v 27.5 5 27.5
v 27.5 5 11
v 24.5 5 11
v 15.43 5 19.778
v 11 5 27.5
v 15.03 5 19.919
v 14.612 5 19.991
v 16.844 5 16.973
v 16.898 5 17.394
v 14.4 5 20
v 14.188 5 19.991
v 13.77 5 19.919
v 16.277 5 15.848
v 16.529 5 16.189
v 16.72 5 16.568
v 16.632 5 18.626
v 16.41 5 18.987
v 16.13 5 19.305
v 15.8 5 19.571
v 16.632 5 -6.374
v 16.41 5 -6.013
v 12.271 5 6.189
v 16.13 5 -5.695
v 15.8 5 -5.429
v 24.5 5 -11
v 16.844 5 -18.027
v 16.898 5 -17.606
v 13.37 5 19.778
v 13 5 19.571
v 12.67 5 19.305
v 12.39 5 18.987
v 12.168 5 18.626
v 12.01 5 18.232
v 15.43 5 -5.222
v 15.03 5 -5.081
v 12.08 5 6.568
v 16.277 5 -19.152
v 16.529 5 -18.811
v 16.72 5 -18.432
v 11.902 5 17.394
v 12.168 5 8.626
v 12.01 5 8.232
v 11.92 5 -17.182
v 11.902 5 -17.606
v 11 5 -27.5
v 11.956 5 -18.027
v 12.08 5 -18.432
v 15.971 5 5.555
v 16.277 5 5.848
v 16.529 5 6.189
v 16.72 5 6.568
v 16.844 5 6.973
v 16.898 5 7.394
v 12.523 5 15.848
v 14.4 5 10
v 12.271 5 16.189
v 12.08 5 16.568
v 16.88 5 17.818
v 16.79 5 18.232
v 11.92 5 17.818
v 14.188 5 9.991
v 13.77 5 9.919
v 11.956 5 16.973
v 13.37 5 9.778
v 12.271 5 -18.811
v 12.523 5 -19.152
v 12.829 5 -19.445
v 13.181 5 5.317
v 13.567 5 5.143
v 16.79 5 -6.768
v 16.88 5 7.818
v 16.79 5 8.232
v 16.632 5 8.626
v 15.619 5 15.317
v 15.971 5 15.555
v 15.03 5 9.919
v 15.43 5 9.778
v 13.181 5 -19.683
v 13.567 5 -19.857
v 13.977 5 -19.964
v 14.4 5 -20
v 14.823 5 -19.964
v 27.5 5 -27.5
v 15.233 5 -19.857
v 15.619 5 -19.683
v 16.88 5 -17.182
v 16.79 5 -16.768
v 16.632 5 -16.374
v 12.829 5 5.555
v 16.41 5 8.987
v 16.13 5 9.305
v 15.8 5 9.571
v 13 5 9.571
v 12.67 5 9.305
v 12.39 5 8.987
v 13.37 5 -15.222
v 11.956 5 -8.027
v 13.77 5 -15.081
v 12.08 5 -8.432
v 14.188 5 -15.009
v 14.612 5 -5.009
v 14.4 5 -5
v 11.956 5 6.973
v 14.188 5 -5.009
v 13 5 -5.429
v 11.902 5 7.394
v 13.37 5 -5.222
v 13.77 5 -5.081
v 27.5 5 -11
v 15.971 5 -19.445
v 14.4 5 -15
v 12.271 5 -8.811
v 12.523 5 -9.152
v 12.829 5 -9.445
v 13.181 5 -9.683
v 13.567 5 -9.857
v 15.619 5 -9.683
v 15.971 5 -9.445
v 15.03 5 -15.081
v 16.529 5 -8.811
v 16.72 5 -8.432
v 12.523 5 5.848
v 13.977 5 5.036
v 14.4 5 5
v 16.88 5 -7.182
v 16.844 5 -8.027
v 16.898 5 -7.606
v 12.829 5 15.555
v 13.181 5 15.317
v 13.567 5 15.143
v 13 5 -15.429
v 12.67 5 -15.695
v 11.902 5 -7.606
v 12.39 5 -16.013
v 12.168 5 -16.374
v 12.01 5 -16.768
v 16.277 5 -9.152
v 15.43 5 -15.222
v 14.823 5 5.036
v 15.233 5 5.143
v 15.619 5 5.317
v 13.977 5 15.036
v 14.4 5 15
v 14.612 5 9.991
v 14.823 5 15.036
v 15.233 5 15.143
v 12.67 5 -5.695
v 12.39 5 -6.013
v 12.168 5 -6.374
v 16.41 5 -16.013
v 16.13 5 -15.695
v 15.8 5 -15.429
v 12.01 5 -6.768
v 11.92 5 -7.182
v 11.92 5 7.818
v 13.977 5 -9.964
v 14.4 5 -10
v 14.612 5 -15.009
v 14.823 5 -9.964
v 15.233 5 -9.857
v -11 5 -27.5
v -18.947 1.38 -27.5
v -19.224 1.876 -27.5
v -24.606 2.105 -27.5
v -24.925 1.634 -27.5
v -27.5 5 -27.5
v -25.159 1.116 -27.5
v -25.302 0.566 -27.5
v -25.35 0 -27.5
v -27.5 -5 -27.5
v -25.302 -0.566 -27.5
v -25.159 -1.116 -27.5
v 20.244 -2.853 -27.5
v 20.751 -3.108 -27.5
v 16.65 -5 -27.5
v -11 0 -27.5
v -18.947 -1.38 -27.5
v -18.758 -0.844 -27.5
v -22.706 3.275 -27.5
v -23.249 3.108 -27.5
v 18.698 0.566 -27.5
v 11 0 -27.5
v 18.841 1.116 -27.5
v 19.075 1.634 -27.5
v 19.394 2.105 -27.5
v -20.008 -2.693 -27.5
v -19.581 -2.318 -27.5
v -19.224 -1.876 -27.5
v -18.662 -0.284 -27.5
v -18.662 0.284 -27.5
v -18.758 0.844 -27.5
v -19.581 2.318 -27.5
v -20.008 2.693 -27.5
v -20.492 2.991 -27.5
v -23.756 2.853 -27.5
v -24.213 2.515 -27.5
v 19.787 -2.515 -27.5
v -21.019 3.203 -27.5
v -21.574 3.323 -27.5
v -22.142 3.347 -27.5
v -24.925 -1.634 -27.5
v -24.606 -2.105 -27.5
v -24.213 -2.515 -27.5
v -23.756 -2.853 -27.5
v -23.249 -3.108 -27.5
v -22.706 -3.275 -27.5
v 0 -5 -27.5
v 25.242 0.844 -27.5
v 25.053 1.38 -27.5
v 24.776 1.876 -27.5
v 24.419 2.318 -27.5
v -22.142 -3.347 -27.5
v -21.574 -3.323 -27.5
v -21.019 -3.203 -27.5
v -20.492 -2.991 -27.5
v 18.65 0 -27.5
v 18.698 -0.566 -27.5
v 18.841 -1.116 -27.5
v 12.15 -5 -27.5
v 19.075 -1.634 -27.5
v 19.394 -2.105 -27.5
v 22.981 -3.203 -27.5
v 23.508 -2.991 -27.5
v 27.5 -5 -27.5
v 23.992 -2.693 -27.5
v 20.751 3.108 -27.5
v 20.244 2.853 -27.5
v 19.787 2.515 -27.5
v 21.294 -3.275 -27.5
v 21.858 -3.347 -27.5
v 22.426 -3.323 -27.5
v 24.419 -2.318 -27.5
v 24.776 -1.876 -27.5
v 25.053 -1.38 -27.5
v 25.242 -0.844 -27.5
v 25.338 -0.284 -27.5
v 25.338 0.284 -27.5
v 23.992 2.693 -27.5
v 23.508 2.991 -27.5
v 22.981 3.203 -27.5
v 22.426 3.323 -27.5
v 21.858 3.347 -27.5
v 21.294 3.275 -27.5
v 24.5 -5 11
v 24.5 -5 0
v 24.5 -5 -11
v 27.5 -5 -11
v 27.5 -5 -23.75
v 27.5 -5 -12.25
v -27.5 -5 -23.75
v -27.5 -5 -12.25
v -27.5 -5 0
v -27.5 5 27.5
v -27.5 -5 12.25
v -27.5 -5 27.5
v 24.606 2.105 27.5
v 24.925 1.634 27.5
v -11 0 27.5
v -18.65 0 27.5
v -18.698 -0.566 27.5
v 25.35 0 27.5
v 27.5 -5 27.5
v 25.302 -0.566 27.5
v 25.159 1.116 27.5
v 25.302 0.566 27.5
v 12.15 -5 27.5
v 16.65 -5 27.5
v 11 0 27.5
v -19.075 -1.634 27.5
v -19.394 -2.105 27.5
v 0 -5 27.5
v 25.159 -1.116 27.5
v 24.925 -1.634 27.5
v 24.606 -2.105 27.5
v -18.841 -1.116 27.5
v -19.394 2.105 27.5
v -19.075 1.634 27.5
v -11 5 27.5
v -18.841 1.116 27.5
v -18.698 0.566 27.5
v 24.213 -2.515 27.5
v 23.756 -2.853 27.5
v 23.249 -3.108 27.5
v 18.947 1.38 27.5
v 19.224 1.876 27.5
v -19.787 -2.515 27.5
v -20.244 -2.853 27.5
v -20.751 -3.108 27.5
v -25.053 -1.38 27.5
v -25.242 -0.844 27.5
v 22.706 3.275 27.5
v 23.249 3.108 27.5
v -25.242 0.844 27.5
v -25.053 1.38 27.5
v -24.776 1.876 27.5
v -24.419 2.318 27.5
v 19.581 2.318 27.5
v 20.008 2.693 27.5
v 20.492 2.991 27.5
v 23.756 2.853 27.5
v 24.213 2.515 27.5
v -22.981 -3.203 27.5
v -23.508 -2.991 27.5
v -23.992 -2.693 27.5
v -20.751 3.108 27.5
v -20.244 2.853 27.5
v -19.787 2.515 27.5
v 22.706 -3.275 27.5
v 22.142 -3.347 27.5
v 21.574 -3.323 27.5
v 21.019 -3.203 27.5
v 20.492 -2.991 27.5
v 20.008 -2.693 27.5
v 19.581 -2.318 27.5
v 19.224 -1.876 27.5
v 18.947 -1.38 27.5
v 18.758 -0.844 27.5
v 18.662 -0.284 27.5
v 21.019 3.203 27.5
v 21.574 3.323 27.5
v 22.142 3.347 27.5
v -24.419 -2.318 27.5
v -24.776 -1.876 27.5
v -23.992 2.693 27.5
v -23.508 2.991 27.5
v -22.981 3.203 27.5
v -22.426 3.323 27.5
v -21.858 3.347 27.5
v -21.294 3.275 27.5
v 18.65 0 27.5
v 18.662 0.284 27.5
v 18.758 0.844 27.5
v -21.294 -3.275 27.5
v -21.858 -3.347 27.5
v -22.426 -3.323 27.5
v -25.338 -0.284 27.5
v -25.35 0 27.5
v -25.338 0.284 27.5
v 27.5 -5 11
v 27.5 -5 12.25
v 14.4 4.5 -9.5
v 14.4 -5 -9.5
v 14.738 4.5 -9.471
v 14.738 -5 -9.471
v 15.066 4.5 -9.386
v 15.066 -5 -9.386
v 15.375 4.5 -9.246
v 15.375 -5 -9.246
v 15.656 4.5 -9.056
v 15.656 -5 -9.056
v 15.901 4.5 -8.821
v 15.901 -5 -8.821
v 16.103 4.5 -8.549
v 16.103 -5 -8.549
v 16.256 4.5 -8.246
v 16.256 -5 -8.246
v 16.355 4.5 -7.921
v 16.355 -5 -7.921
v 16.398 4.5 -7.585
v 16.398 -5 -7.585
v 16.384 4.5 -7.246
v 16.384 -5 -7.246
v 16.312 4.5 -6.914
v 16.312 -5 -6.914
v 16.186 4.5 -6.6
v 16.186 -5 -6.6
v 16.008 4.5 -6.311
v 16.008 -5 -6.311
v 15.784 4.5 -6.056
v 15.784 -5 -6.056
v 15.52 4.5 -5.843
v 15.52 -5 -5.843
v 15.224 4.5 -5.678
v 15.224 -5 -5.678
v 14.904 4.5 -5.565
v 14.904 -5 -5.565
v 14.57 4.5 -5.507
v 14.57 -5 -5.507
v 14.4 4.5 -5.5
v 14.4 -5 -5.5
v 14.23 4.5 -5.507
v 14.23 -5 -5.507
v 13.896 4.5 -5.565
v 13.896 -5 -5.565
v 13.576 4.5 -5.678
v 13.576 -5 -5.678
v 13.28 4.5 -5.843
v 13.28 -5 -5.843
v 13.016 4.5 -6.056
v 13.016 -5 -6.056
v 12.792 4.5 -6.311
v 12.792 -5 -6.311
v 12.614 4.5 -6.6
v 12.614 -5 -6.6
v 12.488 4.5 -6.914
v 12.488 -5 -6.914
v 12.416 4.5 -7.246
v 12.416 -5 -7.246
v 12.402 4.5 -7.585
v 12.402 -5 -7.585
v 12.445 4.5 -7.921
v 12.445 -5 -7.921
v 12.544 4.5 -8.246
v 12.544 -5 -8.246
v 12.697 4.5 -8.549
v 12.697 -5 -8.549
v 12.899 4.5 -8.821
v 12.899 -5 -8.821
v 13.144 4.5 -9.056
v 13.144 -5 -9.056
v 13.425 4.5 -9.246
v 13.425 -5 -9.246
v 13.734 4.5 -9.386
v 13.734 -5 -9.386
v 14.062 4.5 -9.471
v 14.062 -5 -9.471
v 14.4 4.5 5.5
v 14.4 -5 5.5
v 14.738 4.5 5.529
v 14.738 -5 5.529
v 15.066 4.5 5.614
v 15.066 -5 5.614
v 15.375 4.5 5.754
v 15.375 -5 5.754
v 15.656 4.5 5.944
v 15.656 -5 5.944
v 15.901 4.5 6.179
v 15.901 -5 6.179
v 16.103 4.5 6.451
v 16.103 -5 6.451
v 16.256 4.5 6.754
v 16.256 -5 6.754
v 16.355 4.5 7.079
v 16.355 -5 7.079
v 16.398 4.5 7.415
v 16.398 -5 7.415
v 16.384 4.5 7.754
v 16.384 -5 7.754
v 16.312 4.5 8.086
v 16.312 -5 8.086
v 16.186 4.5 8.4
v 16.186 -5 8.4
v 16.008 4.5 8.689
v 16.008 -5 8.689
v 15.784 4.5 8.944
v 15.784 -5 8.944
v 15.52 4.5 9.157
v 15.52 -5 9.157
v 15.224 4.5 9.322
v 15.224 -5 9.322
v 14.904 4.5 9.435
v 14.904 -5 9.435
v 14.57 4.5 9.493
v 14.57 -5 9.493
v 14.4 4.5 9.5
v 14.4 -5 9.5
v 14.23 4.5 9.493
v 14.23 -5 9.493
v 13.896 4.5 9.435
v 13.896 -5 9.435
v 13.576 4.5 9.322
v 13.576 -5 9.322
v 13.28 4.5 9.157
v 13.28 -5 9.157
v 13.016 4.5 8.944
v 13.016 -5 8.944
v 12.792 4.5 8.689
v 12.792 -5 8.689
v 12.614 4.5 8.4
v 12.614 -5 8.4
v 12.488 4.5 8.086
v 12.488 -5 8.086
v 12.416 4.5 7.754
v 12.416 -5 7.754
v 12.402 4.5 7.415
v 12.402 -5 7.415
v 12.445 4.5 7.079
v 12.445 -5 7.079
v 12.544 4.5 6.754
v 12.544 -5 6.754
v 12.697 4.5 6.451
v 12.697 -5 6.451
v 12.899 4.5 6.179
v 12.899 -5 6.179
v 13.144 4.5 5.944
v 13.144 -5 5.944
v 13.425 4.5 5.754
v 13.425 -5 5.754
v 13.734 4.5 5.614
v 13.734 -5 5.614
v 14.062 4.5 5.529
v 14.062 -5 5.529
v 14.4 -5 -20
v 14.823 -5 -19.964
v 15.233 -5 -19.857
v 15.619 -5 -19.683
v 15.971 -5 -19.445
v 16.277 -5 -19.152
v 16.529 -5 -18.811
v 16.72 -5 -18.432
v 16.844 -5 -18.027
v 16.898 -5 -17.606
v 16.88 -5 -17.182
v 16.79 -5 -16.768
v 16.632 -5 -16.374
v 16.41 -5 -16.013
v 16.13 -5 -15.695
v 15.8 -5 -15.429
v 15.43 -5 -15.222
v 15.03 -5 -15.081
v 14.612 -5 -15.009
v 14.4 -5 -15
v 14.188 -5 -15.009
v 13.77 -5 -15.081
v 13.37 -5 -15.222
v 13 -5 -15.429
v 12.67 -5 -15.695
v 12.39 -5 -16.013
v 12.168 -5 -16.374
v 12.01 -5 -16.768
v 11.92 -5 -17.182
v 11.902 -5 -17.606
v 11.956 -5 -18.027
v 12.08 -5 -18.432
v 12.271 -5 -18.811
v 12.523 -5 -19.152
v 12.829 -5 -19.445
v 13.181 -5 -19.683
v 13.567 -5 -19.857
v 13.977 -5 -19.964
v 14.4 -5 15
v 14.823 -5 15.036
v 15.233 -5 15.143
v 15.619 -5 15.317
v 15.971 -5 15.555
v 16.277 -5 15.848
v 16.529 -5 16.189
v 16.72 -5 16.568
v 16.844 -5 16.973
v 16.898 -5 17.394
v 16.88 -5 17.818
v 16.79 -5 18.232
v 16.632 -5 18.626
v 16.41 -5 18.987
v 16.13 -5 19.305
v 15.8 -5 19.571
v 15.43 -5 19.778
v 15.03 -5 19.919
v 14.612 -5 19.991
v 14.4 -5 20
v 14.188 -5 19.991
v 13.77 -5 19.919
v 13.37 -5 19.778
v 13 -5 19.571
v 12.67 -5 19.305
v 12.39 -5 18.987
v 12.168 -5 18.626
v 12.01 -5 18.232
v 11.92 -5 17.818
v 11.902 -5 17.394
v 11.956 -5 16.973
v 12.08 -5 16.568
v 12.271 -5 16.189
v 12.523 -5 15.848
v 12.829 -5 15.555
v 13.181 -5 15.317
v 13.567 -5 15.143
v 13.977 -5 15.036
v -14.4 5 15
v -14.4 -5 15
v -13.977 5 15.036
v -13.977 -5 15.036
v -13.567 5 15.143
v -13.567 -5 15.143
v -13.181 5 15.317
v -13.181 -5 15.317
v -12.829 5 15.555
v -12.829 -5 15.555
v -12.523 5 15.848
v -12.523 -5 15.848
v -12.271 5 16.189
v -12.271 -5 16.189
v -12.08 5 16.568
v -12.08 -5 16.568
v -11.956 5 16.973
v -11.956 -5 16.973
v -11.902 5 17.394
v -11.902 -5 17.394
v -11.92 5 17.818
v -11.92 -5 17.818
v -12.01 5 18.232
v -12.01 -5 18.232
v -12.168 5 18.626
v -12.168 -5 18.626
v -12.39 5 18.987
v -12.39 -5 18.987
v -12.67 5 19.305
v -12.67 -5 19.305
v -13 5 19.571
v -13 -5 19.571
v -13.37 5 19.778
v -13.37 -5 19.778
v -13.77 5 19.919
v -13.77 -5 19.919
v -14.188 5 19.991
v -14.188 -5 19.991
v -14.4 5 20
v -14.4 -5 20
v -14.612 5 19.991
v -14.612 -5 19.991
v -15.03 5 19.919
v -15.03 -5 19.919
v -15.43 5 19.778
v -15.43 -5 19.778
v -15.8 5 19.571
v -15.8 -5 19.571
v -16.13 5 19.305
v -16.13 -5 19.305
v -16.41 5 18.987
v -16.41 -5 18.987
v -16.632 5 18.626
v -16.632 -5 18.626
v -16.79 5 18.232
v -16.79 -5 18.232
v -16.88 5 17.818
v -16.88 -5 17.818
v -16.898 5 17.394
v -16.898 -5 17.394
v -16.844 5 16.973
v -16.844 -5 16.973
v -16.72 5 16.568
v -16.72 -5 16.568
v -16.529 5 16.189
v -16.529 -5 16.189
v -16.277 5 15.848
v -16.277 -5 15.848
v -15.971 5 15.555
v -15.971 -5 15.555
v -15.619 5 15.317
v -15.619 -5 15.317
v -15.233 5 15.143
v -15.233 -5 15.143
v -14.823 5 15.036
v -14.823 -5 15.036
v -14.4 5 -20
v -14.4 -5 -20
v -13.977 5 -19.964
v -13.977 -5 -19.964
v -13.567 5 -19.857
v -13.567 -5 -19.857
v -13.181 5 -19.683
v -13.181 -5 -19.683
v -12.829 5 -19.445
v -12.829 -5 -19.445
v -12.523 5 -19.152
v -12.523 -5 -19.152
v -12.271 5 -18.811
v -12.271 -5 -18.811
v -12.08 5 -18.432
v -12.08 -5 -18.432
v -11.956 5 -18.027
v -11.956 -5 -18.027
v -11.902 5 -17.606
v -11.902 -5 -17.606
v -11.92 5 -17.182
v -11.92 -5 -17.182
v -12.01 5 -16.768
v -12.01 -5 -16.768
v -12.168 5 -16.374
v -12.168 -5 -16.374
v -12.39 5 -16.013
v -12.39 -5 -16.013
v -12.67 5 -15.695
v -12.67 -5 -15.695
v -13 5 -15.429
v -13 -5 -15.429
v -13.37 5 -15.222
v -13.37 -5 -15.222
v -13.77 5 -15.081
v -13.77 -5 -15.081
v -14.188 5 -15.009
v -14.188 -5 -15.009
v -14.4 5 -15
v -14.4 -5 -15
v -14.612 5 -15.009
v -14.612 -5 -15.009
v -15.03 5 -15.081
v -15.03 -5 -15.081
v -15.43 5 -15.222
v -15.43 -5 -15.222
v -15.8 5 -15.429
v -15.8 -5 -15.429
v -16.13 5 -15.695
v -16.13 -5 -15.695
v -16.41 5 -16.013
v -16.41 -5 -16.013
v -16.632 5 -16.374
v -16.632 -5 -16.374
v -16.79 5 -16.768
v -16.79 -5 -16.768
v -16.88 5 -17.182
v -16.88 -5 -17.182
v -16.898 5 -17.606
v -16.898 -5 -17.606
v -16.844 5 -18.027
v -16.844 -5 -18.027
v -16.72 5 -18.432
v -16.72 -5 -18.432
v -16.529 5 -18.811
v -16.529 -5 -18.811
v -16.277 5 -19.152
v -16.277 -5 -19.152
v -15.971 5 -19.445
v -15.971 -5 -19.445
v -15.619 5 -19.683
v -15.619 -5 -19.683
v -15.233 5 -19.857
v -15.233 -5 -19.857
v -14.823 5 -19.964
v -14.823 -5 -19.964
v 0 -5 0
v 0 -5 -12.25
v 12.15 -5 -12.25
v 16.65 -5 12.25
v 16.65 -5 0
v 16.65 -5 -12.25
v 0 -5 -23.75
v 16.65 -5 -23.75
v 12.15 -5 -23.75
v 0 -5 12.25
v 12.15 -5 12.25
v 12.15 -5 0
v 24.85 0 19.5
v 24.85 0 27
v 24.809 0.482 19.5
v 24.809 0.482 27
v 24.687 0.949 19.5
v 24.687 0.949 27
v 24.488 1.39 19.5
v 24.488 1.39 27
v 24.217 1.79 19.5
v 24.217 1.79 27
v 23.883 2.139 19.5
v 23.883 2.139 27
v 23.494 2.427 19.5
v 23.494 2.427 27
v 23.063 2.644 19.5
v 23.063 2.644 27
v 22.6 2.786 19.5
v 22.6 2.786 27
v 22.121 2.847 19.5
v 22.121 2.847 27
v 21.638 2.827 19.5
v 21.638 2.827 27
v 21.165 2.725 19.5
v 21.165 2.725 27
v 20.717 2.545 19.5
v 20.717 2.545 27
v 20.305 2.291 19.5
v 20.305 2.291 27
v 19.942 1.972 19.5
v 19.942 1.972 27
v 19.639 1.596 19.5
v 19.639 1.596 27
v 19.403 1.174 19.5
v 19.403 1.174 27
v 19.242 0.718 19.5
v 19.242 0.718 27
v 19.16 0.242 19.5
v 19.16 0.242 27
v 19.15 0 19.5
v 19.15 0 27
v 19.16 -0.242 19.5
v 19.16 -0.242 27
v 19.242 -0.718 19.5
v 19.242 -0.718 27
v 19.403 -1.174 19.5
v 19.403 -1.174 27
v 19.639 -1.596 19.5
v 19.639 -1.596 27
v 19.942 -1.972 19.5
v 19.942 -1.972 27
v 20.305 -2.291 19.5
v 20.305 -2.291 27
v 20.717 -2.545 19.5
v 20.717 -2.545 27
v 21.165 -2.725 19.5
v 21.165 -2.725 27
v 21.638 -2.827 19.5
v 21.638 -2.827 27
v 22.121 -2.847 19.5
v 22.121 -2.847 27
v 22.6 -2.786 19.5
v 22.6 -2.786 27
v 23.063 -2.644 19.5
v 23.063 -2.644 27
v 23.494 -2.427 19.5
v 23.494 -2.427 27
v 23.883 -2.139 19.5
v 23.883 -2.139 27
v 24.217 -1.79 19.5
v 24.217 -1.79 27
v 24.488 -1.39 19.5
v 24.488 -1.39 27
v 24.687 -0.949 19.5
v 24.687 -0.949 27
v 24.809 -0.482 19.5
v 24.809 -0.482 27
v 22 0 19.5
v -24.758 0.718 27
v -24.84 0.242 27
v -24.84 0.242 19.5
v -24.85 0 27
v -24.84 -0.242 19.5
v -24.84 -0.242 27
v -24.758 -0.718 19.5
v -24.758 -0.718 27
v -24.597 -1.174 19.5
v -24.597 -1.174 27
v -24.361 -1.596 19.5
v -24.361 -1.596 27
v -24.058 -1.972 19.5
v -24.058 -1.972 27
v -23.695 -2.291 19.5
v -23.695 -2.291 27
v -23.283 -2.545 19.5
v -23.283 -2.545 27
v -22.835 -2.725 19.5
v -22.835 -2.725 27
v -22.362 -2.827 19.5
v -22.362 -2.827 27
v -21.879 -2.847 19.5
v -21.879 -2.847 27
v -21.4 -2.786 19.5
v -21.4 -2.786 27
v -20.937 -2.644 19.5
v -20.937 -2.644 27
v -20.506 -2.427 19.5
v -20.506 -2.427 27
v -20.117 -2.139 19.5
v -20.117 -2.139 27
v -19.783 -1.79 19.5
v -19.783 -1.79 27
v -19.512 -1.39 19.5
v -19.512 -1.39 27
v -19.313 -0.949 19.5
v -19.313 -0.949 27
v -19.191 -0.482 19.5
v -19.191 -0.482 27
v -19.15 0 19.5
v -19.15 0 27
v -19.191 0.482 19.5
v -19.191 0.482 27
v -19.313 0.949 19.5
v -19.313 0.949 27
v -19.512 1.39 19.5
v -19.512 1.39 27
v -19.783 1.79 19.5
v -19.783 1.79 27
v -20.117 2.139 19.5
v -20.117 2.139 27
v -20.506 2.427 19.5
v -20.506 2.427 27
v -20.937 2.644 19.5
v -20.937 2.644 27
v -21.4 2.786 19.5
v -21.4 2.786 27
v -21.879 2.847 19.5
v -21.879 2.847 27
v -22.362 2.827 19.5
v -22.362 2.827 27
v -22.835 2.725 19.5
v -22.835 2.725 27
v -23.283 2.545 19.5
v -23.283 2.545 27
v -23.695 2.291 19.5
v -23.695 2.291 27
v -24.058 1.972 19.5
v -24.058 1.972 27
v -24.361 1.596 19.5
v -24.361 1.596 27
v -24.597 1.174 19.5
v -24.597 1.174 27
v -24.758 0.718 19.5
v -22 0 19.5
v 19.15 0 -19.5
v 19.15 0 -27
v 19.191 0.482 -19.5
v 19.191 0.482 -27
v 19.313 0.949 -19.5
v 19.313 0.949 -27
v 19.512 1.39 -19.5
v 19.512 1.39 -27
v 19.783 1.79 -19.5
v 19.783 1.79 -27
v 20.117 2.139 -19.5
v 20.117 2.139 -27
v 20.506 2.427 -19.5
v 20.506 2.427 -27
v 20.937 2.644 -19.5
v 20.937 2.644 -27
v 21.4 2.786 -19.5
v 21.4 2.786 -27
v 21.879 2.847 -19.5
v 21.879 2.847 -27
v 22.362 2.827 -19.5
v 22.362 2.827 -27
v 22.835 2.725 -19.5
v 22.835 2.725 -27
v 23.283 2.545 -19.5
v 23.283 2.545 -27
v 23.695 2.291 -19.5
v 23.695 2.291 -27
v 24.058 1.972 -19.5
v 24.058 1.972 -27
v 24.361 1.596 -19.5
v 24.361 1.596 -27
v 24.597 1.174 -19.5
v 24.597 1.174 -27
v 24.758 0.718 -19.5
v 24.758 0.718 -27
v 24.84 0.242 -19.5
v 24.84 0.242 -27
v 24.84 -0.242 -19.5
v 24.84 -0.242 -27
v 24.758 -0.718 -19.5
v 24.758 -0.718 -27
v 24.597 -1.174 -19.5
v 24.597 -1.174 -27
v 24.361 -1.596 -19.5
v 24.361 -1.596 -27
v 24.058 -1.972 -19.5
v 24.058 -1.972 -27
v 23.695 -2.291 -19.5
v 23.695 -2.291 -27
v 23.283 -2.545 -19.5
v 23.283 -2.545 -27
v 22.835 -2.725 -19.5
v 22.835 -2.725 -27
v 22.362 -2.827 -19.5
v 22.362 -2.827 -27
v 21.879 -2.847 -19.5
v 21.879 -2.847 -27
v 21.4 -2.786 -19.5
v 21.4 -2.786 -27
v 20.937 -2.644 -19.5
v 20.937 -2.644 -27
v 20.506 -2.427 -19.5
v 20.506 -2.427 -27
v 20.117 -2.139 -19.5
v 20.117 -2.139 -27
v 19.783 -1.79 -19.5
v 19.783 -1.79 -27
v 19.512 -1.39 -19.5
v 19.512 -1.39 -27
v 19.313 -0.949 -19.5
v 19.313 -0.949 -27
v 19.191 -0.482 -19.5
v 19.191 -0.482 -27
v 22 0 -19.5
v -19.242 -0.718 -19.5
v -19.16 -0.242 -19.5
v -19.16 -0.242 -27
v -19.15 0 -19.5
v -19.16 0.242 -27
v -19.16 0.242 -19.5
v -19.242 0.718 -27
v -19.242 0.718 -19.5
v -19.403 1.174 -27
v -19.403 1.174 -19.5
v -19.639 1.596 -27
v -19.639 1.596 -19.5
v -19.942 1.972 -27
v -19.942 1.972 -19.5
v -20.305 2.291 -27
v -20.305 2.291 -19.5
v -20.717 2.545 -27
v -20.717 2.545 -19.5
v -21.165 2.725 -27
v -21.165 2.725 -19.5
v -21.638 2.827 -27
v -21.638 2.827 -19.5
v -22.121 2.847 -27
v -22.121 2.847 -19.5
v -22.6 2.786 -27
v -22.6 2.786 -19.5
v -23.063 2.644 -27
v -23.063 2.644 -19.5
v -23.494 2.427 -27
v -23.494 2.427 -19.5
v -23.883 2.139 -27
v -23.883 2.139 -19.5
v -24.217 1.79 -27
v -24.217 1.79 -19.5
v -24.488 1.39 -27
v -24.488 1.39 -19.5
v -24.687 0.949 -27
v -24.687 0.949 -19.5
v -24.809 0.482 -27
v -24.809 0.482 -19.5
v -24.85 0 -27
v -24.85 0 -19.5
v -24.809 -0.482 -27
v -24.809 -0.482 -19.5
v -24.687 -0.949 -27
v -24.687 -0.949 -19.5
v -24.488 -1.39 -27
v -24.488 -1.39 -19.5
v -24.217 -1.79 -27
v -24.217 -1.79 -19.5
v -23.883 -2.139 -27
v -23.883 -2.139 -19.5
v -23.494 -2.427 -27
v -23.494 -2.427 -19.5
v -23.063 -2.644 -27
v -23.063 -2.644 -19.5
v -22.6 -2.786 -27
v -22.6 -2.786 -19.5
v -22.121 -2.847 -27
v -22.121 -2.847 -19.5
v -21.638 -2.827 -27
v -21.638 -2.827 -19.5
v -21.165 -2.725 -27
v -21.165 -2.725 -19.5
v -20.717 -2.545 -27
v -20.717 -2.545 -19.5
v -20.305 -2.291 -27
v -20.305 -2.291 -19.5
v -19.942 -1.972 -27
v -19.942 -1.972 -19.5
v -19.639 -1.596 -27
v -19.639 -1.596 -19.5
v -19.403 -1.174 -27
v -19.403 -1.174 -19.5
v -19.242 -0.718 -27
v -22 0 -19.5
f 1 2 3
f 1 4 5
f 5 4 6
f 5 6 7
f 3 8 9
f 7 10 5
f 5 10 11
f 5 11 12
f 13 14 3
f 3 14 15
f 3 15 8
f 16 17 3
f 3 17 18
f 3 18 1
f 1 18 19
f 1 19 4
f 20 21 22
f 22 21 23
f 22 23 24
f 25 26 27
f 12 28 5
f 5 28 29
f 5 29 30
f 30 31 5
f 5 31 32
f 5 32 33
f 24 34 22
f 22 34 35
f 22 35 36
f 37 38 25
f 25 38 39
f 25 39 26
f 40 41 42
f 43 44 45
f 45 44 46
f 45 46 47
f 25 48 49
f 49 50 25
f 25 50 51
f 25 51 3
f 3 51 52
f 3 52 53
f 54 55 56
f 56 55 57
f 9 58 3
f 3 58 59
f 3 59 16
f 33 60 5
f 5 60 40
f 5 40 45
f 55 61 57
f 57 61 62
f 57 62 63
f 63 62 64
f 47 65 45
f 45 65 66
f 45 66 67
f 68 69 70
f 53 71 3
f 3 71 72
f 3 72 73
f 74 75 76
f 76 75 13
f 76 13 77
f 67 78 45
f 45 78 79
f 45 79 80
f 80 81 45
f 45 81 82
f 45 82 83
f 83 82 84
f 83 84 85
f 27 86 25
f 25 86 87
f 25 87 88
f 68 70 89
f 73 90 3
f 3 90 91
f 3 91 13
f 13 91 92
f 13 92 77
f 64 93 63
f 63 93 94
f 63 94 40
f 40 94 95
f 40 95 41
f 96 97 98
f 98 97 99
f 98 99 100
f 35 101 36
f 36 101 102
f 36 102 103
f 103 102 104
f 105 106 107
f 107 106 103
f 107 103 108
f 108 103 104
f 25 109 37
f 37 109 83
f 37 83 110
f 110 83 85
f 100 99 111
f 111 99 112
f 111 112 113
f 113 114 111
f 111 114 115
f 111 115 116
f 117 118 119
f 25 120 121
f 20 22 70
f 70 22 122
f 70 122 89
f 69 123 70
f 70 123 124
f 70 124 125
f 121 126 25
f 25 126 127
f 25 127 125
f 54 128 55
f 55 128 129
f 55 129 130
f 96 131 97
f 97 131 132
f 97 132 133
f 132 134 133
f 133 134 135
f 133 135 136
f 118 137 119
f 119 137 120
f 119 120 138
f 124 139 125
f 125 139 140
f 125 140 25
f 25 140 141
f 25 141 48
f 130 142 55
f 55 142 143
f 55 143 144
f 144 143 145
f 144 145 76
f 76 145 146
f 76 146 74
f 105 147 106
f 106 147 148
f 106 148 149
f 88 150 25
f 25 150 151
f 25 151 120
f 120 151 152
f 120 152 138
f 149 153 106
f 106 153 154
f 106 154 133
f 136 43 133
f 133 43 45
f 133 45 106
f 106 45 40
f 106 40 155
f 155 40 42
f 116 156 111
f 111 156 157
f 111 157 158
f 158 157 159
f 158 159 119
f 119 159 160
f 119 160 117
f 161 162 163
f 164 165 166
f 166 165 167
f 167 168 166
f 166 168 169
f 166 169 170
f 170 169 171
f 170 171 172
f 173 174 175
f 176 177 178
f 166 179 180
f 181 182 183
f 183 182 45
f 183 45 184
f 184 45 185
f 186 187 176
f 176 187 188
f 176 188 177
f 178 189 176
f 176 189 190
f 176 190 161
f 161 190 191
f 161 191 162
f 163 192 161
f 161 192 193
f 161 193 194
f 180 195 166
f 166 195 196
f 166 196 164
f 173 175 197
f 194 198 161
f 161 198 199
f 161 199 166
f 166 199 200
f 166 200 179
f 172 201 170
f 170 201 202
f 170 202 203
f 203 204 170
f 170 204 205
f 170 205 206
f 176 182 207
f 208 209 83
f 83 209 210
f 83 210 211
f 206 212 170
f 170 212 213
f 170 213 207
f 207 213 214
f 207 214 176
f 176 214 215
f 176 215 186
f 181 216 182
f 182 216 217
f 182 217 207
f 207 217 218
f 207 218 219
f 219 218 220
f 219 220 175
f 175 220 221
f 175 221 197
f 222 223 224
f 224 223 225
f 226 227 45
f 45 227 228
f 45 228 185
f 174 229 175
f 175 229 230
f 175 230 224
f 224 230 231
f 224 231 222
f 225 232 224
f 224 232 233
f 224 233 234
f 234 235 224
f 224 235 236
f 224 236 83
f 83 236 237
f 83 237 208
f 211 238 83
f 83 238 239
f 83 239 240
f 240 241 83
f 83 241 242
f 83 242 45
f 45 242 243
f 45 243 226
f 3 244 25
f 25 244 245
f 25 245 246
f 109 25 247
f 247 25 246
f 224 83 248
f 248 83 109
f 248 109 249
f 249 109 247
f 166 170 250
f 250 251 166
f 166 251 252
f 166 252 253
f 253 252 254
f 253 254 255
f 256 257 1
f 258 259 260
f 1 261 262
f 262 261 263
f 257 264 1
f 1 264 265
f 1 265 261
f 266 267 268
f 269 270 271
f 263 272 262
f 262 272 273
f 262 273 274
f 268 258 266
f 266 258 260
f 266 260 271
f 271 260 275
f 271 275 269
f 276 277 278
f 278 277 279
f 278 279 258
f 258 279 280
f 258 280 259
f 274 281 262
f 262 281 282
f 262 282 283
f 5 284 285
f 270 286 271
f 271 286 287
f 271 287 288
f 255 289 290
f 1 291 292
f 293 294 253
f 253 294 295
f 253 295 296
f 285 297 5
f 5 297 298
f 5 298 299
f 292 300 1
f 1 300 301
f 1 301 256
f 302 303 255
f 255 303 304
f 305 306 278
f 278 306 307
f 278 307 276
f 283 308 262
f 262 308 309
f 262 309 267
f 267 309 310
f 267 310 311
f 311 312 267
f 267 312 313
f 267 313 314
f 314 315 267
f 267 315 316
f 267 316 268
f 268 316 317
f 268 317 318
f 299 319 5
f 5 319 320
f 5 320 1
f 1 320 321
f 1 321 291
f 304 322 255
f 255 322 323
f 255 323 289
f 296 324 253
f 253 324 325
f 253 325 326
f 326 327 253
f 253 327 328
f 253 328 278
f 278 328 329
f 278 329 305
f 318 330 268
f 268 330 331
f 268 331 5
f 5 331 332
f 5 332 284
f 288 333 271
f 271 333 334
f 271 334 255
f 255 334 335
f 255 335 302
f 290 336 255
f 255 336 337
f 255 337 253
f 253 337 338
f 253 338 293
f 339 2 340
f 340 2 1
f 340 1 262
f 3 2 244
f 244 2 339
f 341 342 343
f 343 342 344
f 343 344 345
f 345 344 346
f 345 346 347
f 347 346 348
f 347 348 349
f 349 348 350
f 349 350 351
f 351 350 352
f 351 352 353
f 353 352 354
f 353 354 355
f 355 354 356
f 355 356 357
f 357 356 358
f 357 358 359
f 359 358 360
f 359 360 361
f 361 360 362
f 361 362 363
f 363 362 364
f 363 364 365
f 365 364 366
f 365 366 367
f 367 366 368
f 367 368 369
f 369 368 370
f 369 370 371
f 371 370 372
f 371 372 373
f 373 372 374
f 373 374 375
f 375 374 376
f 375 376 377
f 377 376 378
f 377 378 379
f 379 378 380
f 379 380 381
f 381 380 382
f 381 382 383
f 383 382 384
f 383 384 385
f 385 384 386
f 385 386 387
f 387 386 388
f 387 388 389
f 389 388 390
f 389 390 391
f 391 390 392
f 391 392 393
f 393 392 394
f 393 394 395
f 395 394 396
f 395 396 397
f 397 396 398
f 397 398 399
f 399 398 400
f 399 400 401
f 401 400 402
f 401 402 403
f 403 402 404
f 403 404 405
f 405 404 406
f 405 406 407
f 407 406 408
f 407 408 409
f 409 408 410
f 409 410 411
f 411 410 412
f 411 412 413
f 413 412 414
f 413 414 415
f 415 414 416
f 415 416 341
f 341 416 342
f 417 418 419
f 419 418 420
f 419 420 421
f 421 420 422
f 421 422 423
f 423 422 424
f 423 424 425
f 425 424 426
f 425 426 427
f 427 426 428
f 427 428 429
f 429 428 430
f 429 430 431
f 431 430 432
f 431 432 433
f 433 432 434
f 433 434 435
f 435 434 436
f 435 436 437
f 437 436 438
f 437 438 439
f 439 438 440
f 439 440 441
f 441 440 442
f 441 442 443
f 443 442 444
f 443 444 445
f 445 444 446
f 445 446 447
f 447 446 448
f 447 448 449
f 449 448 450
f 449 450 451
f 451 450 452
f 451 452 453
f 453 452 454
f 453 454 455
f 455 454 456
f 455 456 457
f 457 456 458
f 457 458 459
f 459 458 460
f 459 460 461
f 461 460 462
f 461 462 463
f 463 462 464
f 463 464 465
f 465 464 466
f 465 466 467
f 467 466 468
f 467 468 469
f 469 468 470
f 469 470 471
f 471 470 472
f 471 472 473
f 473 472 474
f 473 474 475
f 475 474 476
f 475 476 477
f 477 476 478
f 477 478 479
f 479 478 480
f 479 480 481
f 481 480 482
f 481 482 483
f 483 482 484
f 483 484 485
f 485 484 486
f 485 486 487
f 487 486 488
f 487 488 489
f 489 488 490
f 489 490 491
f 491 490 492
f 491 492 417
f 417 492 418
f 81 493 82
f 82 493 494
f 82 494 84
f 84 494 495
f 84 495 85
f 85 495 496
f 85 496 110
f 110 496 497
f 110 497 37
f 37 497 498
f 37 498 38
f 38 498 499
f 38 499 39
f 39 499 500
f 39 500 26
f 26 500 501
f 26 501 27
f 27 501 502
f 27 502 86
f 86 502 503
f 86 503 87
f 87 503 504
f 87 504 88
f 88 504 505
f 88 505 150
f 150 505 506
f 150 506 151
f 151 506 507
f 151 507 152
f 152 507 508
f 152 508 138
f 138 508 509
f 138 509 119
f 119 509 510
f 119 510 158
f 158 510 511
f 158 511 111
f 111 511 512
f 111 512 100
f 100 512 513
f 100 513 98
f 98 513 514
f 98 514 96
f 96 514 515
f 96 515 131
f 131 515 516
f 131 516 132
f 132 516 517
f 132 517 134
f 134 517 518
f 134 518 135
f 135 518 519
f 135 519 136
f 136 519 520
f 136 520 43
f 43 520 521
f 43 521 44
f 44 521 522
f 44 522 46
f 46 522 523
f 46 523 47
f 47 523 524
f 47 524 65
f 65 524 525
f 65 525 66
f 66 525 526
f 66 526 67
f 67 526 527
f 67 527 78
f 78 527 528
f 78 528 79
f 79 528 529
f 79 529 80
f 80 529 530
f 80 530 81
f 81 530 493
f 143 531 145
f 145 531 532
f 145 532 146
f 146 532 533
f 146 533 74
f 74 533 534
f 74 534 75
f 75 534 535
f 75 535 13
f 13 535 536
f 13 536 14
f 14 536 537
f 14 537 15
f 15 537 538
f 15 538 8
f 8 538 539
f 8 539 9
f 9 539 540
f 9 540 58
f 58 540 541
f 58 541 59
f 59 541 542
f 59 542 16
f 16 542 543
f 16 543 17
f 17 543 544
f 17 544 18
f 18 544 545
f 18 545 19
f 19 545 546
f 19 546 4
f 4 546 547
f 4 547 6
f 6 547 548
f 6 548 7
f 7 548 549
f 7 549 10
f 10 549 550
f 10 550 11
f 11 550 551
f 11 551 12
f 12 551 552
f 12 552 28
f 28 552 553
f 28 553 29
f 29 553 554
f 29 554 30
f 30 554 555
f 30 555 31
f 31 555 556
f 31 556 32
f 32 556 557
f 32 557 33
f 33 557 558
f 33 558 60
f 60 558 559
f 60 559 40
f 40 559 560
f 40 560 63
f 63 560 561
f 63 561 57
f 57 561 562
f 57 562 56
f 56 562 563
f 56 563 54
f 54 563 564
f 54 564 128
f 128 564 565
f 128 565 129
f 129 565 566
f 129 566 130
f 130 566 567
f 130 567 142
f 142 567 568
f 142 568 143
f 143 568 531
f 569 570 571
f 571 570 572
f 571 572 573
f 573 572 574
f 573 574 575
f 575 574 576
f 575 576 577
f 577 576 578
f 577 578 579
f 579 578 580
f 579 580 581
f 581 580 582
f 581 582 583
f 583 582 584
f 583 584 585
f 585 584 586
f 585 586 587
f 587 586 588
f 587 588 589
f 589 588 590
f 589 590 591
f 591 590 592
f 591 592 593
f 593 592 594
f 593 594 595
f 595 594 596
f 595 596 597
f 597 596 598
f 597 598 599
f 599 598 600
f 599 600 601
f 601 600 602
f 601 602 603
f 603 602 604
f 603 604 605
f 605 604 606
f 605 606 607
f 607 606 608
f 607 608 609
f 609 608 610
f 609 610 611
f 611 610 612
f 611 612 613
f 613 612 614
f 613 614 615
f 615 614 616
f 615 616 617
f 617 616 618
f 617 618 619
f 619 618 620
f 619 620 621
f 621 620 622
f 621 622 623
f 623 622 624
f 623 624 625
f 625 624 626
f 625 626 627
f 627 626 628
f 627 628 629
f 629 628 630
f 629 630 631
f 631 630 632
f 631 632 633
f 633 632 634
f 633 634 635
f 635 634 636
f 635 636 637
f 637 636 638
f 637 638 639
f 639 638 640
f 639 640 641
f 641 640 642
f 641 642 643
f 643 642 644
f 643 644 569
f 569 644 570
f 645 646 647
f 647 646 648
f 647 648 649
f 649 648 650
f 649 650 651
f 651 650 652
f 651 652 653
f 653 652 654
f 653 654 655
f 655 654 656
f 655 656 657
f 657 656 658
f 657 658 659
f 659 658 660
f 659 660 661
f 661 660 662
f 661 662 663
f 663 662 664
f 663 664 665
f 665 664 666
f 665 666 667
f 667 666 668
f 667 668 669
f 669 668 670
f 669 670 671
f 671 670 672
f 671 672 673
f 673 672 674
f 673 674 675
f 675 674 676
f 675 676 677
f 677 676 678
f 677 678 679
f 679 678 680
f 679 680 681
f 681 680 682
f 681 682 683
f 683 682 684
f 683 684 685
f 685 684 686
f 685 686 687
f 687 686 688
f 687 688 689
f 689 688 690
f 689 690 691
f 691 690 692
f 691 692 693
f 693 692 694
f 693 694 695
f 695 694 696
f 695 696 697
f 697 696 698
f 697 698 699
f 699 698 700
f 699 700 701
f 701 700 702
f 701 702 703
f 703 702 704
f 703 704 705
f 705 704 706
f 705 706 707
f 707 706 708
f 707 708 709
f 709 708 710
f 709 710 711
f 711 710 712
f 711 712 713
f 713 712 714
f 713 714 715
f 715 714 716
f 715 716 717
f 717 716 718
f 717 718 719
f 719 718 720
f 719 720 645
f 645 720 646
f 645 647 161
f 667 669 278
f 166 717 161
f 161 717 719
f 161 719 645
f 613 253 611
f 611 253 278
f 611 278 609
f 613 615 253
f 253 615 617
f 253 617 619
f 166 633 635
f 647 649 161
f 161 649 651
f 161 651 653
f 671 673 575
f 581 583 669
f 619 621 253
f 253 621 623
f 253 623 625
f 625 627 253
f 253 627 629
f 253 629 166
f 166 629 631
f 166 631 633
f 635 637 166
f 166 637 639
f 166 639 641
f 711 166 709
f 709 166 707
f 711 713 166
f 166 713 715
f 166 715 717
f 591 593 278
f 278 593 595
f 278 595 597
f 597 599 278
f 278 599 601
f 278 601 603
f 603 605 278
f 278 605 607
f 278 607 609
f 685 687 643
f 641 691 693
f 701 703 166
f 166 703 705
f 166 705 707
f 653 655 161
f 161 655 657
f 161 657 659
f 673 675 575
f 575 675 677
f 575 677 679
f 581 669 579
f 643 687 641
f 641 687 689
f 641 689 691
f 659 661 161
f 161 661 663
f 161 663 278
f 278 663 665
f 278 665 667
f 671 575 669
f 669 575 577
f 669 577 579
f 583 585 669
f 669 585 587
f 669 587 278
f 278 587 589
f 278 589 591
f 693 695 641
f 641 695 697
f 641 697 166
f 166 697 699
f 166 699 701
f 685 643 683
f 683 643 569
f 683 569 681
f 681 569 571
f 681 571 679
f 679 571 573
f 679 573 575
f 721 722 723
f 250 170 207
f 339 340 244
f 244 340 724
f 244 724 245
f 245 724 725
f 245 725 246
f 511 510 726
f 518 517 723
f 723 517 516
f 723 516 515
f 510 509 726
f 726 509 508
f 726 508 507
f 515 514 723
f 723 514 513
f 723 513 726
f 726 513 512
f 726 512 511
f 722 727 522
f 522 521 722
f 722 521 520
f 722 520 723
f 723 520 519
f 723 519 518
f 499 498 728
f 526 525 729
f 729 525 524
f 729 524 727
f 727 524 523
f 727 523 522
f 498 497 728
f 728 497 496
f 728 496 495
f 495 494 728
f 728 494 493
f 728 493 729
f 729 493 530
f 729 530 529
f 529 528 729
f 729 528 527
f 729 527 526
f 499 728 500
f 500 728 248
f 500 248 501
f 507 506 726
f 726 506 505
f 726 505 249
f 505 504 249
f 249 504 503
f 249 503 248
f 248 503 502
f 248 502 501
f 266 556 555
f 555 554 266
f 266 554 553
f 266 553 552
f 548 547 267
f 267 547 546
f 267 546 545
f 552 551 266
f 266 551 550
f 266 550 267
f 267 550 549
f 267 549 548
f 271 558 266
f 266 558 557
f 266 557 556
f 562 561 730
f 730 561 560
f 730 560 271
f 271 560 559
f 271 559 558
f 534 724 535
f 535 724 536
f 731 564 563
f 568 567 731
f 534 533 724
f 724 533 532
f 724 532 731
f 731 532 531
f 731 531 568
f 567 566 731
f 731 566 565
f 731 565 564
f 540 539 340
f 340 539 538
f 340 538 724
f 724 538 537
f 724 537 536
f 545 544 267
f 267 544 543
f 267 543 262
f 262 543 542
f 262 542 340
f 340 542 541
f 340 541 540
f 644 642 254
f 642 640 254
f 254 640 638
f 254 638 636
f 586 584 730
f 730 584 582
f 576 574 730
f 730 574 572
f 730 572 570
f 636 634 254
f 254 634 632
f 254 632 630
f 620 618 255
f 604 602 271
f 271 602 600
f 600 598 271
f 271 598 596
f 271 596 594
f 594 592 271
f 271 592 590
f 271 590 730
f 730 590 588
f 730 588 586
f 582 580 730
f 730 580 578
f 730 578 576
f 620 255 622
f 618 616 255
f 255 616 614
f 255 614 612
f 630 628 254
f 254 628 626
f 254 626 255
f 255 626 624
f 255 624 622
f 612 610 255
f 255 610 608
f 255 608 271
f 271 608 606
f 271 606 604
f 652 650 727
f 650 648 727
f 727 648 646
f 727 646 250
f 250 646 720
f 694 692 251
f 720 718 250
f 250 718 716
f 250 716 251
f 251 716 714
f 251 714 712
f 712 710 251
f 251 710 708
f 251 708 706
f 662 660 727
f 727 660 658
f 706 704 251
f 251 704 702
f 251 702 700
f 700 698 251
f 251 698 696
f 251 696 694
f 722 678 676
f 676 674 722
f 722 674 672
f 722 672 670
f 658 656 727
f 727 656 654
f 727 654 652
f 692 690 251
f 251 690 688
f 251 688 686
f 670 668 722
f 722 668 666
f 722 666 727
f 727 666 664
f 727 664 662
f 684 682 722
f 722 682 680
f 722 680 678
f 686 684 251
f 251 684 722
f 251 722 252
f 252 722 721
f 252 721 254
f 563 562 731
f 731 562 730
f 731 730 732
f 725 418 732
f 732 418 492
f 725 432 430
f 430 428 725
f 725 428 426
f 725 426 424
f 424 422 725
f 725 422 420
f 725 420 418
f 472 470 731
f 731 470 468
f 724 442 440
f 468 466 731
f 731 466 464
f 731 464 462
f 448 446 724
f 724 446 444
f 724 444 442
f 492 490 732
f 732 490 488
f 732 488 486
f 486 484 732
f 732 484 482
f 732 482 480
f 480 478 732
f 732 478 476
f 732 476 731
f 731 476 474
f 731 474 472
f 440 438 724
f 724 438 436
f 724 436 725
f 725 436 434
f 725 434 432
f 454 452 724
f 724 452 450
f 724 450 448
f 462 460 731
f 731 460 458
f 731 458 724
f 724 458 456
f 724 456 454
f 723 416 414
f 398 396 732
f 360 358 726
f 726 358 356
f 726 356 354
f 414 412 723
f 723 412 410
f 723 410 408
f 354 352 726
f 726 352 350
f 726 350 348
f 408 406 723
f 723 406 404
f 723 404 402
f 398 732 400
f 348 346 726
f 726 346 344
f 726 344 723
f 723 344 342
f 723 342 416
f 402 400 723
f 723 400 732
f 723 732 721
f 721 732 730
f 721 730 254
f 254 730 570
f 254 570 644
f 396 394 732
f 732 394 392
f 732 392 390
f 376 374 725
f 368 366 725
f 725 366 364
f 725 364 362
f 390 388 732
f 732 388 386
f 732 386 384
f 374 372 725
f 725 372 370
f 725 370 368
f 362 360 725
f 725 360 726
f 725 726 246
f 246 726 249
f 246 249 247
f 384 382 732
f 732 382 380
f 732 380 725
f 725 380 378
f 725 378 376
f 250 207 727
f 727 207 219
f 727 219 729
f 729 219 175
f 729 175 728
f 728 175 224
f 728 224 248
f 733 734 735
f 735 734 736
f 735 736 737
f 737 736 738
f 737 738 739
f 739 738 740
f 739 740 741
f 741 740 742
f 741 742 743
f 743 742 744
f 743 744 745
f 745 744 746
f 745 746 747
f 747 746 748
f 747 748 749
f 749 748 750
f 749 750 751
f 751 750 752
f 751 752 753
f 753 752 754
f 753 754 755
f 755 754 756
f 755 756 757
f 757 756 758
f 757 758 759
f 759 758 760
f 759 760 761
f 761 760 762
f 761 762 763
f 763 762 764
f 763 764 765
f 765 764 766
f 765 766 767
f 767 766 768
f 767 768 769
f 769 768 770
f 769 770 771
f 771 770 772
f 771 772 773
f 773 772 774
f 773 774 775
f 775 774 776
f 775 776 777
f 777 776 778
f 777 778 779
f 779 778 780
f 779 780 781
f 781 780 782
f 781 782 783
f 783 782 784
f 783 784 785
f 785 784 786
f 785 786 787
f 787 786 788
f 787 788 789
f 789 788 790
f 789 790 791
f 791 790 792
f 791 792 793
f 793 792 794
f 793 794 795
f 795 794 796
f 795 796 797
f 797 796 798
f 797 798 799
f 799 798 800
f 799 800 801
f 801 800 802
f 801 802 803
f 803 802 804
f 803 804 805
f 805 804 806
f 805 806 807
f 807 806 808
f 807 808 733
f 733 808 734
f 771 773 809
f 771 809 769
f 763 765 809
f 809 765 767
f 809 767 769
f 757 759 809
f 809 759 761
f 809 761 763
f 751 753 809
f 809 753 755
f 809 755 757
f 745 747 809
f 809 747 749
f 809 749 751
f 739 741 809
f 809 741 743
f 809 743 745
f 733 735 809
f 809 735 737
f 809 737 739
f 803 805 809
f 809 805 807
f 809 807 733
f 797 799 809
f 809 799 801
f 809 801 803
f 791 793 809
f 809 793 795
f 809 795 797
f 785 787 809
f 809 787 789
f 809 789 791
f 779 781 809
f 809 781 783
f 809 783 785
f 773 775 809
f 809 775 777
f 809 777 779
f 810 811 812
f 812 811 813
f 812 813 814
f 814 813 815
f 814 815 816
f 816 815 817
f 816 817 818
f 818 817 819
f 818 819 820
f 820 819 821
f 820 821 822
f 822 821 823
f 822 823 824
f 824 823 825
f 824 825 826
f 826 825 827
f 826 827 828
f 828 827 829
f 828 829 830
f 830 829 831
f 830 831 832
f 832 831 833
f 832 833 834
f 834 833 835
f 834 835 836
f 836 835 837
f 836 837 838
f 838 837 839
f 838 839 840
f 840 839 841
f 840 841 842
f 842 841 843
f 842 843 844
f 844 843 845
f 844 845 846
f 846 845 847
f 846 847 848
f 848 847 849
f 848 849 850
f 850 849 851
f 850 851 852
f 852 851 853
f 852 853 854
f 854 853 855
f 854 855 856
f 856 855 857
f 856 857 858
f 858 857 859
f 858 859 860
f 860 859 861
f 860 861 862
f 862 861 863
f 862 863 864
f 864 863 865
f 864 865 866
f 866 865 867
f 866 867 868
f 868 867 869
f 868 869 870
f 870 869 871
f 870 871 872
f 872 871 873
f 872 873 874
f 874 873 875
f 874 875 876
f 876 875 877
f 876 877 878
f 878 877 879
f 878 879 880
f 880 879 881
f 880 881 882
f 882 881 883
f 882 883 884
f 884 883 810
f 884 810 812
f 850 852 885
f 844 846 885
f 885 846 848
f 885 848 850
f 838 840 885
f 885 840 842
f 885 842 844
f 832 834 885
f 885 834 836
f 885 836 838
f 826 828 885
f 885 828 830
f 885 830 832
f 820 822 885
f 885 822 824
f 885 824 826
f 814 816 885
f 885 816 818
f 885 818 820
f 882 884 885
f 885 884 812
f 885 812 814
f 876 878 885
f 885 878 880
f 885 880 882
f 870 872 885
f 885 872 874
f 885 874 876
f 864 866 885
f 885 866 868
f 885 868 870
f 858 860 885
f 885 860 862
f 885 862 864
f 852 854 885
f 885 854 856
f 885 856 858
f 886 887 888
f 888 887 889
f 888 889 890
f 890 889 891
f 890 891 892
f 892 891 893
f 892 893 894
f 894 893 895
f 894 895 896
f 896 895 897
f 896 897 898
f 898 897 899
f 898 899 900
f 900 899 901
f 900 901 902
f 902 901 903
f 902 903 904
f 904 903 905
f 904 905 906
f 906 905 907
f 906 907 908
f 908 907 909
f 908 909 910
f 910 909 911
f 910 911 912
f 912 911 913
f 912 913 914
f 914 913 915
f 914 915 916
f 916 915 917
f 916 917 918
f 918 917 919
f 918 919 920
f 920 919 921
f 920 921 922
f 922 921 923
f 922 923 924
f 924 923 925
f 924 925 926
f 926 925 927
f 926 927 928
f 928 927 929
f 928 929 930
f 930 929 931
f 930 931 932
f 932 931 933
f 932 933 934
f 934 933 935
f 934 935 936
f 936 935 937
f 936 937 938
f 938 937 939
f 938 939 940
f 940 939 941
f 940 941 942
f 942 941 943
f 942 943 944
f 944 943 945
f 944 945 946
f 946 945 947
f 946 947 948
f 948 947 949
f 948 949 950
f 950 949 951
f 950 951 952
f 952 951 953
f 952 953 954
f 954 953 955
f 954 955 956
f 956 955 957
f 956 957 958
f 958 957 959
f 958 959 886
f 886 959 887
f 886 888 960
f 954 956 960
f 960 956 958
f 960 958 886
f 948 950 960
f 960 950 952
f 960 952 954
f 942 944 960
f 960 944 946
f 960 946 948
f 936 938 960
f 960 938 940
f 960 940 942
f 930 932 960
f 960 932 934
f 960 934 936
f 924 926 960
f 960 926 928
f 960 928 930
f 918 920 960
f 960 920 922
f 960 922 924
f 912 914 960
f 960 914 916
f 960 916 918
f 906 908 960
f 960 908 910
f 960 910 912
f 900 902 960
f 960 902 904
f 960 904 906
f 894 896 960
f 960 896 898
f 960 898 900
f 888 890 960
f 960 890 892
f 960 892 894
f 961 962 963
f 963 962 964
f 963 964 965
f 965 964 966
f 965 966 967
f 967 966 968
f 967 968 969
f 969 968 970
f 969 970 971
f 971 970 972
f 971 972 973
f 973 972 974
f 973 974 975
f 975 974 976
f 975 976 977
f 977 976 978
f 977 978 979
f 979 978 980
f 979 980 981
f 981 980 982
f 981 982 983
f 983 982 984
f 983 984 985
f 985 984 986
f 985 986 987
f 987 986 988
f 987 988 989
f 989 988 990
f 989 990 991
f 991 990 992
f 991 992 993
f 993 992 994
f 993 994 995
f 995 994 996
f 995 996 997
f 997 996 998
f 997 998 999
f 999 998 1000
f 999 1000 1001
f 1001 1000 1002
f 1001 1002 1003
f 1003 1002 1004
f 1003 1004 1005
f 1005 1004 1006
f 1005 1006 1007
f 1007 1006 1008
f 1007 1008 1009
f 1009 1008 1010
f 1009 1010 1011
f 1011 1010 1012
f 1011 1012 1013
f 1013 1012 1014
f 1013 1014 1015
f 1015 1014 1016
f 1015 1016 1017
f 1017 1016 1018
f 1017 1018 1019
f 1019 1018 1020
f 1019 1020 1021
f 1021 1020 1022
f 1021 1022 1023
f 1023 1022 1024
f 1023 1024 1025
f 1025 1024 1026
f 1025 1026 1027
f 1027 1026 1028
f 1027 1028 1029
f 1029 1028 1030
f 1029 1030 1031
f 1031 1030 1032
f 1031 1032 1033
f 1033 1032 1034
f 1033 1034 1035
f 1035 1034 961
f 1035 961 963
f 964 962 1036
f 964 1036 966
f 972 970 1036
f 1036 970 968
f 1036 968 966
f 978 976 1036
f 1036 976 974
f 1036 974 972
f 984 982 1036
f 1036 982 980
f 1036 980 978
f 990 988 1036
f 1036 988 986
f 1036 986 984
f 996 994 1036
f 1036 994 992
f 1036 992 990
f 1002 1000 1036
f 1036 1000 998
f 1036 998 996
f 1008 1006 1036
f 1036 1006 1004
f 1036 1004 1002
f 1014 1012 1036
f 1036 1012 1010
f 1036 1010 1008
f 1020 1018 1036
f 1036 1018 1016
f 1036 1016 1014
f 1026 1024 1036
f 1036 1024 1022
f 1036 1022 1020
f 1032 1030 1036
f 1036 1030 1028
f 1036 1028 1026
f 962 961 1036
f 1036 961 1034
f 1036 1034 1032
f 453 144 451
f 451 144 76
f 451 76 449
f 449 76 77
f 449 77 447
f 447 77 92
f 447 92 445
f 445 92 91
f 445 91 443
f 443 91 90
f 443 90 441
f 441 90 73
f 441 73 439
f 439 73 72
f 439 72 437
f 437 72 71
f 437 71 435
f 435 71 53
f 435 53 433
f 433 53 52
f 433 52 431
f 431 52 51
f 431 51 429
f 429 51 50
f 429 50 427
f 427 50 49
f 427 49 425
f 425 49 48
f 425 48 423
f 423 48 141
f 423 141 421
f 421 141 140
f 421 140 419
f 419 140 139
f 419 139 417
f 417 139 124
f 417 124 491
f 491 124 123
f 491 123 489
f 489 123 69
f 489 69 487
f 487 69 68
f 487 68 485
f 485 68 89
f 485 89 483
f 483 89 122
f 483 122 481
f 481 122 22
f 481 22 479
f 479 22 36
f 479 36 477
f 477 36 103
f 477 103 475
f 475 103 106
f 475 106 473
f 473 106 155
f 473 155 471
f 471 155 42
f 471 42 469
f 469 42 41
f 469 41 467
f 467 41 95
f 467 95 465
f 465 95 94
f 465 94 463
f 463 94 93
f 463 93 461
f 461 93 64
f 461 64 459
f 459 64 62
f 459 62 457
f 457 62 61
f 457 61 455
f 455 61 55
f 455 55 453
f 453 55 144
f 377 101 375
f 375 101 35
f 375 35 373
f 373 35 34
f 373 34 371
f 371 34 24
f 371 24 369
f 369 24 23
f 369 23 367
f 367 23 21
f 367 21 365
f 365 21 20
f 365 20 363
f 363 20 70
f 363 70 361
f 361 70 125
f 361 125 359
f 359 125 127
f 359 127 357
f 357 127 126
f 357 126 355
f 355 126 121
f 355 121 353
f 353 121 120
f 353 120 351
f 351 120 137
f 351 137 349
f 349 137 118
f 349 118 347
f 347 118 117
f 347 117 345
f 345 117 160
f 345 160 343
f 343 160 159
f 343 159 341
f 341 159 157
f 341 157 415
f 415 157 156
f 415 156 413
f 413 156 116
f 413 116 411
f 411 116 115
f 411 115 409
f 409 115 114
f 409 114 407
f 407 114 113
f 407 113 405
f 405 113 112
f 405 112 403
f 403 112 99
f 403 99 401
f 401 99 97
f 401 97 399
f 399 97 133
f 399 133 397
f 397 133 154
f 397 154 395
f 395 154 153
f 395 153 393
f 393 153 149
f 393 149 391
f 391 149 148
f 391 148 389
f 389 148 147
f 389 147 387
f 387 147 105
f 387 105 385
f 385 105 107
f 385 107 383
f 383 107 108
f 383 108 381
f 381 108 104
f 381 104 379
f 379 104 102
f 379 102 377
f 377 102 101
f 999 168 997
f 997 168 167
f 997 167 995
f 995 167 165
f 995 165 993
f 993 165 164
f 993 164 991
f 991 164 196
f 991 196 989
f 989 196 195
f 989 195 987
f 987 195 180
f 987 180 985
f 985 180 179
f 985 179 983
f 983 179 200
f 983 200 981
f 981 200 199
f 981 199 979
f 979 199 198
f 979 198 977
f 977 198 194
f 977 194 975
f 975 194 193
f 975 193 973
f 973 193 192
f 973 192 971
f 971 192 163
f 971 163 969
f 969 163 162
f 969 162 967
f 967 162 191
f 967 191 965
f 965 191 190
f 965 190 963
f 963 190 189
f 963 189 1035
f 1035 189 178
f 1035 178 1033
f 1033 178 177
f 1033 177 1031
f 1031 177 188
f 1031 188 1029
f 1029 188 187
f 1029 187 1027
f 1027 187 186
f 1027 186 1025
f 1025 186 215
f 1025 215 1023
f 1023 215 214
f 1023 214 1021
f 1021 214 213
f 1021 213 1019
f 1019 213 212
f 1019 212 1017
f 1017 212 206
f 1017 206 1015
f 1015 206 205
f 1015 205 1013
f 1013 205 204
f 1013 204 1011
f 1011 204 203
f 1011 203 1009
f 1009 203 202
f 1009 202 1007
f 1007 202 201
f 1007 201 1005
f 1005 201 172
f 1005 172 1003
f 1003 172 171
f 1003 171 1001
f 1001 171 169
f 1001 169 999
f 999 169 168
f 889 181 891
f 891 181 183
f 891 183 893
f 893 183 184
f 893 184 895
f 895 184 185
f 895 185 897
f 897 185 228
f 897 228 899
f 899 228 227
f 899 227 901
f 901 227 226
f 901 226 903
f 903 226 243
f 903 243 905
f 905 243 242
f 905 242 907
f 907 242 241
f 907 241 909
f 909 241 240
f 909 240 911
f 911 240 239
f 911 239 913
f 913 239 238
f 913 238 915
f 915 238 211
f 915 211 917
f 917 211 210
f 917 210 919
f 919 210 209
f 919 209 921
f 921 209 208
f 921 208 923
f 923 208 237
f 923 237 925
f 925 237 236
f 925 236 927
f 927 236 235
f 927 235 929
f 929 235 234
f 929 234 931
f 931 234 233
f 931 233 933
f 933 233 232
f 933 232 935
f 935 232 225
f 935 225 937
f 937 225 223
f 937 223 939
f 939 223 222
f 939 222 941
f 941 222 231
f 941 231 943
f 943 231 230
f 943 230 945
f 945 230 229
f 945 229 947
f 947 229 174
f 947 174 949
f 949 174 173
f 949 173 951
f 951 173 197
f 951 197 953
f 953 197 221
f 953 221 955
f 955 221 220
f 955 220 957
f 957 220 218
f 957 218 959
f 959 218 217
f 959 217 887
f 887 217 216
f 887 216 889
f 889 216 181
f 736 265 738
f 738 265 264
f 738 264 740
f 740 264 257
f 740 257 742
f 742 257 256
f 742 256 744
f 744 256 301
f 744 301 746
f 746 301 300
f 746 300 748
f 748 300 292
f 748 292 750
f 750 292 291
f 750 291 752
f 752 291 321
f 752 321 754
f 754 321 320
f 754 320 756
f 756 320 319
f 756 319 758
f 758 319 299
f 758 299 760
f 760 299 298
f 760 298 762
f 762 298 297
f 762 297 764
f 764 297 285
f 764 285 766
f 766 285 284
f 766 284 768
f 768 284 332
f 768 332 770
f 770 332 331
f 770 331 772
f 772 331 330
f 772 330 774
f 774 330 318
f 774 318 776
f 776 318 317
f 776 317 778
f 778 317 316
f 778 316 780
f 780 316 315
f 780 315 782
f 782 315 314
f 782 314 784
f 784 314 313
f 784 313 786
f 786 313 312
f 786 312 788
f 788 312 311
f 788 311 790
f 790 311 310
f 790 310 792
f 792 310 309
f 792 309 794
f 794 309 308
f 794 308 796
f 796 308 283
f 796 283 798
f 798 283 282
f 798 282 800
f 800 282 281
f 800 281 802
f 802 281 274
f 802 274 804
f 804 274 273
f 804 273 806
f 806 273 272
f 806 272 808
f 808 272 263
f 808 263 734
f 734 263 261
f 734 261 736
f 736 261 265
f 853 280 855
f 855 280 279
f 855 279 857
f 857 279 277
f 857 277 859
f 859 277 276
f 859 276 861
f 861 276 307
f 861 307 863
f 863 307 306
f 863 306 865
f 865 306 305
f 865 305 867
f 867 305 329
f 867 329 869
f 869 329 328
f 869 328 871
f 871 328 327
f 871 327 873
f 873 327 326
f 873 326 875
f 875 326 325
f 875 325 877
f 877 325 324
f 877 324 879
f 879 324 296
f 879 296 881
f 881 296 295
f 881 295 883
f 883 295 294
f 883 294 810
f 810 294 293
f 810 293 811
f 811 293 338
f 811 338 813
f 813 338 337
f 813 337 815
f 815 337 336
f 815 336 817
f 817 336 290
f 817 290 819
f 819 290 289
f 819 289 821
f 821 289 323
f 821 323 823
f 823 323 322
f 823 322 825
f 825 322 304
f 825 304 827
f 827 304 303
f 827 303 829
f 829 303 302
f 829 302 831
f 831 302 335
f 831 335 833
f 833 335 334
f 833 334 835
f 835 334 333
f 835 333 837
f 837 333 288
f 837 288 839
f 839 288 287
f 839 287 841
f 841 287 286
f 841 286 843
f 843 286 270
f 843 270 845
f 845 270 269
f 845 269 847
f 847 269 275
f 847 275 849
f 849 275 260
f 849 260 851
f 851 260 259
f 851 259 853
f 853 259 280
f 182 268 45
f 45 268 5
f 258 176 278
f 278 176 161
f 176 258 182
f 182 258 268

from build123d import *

# Parameters (mm, degrees)
SKETCH1_R           = 2.5
SKETCH1_R_2         = 2
BOSS_EXTRUDE1_DEPTH = 5
SKETCH2_R           = 2.85
CUT_EXTRUDE1_DEPTH  = 8
CHAMFER1_SIZE       = 0.5
SKETCH3_W           = 22
SKETCH3_H           = 55
CUT_EXTRUDE2_DEPTH  = 5


with BuildPart() as part:
    # Sketch1 → Boss-Extrude1 (new, symmetric)
    with BuildSketch(Plane(origin=(0, 0, 0), x_dir=(1, 0, 0), z_dir=(0, 1, 0))):
        Polygon((27.5, 27.5), (-27.5, 27.5), (-27.5, -27.5), (27.5, -27.5), (27.5, -11), (24.5, -11), (24.5, 11), (27.5, 11), align=None)
        with Locations(Location((-14.4, -17.5, 0), (0, 0, 270))):
            Circle(SKETCH1_R, mode=Mode.SUBTRACT)
        with Locations(Location((14.4, -17.5, 0), (0, 0, 270))):
            Circle(SKETCH1_R, mode=Mode.SUBTRACT)
        with Locations(Location((14.4, -7.5, 0), (0, 0, 270))):
            Circle(SKETCH1_R_2, mode=Mode.SUBTRACT)
        with Locations(Location((-14.4, 17.5, 0), (0, 0, 270))):
            Circle(SKETCH1_R, mode=Mode.SUBTRACT)
        with Locations(Location((14.4, 7.5, 0), (0, 0, 270))):
            Circle(SKETCH1_R_2, mode=Mode.SUBTRACT)
        with Locations(Location((14.4, 17.5, 0), (0, 0, 270))):
            Circle(SKETCH1_R, mode=Mode.SUBTRACT)
    extrude(amount=BOSS_EXTRUDE1_DEPTH, both=True)

    # Sketch2 → Cut-Extrude1 (cut)
    with BuildSketch(Plane.XY.offset(27.5)):
        with Locations((-22, 0)):
            Circle(SKETCH2_R)
        with Locations(Location((22, 0, 0), (0, 0, 180))):
            Circle(SKETCH2_R)
    cut_extrude1 = extrude(amount=-CUT_EXTRUDE1_DEPTH, mode=Mode.SUBTRACT)

    # Mirror1: Cut-Extrude1 across plane
    add(cut_extrude1.mirror(Plane.XY), mode=Mode.SUBTRACT)

    # Chamfer1
    chamfer1_edges = [part.edges().sort_by_distance(p)[0] for p in [
        (14.4, 5, 5.5),
        (14.4, 5, -9.5),
        (-24.85, 0, 27.5),
        (24.85, 0, 27.5),
        (-24.85, 0, -27.5),
        (24.85, 0, -27.5),
    ]]
    chamfer(chamfer1_edges, length=CHAMFER1_SIZE)

    # Sketch3 → Cut-Extrude2 (cut)
    with BuildSketch(Plane(origin=(0, 5, 0), x_dir=(1, 0, 0), z_dir=(0, 1, 0))):
        Rectangle(SKETCH3_W, SKETCH3_H)
    extrude(amount=-CUT_EXTRUDE2_DEPTH, mode=Mode.SUBTRACT)


solid = part.part
